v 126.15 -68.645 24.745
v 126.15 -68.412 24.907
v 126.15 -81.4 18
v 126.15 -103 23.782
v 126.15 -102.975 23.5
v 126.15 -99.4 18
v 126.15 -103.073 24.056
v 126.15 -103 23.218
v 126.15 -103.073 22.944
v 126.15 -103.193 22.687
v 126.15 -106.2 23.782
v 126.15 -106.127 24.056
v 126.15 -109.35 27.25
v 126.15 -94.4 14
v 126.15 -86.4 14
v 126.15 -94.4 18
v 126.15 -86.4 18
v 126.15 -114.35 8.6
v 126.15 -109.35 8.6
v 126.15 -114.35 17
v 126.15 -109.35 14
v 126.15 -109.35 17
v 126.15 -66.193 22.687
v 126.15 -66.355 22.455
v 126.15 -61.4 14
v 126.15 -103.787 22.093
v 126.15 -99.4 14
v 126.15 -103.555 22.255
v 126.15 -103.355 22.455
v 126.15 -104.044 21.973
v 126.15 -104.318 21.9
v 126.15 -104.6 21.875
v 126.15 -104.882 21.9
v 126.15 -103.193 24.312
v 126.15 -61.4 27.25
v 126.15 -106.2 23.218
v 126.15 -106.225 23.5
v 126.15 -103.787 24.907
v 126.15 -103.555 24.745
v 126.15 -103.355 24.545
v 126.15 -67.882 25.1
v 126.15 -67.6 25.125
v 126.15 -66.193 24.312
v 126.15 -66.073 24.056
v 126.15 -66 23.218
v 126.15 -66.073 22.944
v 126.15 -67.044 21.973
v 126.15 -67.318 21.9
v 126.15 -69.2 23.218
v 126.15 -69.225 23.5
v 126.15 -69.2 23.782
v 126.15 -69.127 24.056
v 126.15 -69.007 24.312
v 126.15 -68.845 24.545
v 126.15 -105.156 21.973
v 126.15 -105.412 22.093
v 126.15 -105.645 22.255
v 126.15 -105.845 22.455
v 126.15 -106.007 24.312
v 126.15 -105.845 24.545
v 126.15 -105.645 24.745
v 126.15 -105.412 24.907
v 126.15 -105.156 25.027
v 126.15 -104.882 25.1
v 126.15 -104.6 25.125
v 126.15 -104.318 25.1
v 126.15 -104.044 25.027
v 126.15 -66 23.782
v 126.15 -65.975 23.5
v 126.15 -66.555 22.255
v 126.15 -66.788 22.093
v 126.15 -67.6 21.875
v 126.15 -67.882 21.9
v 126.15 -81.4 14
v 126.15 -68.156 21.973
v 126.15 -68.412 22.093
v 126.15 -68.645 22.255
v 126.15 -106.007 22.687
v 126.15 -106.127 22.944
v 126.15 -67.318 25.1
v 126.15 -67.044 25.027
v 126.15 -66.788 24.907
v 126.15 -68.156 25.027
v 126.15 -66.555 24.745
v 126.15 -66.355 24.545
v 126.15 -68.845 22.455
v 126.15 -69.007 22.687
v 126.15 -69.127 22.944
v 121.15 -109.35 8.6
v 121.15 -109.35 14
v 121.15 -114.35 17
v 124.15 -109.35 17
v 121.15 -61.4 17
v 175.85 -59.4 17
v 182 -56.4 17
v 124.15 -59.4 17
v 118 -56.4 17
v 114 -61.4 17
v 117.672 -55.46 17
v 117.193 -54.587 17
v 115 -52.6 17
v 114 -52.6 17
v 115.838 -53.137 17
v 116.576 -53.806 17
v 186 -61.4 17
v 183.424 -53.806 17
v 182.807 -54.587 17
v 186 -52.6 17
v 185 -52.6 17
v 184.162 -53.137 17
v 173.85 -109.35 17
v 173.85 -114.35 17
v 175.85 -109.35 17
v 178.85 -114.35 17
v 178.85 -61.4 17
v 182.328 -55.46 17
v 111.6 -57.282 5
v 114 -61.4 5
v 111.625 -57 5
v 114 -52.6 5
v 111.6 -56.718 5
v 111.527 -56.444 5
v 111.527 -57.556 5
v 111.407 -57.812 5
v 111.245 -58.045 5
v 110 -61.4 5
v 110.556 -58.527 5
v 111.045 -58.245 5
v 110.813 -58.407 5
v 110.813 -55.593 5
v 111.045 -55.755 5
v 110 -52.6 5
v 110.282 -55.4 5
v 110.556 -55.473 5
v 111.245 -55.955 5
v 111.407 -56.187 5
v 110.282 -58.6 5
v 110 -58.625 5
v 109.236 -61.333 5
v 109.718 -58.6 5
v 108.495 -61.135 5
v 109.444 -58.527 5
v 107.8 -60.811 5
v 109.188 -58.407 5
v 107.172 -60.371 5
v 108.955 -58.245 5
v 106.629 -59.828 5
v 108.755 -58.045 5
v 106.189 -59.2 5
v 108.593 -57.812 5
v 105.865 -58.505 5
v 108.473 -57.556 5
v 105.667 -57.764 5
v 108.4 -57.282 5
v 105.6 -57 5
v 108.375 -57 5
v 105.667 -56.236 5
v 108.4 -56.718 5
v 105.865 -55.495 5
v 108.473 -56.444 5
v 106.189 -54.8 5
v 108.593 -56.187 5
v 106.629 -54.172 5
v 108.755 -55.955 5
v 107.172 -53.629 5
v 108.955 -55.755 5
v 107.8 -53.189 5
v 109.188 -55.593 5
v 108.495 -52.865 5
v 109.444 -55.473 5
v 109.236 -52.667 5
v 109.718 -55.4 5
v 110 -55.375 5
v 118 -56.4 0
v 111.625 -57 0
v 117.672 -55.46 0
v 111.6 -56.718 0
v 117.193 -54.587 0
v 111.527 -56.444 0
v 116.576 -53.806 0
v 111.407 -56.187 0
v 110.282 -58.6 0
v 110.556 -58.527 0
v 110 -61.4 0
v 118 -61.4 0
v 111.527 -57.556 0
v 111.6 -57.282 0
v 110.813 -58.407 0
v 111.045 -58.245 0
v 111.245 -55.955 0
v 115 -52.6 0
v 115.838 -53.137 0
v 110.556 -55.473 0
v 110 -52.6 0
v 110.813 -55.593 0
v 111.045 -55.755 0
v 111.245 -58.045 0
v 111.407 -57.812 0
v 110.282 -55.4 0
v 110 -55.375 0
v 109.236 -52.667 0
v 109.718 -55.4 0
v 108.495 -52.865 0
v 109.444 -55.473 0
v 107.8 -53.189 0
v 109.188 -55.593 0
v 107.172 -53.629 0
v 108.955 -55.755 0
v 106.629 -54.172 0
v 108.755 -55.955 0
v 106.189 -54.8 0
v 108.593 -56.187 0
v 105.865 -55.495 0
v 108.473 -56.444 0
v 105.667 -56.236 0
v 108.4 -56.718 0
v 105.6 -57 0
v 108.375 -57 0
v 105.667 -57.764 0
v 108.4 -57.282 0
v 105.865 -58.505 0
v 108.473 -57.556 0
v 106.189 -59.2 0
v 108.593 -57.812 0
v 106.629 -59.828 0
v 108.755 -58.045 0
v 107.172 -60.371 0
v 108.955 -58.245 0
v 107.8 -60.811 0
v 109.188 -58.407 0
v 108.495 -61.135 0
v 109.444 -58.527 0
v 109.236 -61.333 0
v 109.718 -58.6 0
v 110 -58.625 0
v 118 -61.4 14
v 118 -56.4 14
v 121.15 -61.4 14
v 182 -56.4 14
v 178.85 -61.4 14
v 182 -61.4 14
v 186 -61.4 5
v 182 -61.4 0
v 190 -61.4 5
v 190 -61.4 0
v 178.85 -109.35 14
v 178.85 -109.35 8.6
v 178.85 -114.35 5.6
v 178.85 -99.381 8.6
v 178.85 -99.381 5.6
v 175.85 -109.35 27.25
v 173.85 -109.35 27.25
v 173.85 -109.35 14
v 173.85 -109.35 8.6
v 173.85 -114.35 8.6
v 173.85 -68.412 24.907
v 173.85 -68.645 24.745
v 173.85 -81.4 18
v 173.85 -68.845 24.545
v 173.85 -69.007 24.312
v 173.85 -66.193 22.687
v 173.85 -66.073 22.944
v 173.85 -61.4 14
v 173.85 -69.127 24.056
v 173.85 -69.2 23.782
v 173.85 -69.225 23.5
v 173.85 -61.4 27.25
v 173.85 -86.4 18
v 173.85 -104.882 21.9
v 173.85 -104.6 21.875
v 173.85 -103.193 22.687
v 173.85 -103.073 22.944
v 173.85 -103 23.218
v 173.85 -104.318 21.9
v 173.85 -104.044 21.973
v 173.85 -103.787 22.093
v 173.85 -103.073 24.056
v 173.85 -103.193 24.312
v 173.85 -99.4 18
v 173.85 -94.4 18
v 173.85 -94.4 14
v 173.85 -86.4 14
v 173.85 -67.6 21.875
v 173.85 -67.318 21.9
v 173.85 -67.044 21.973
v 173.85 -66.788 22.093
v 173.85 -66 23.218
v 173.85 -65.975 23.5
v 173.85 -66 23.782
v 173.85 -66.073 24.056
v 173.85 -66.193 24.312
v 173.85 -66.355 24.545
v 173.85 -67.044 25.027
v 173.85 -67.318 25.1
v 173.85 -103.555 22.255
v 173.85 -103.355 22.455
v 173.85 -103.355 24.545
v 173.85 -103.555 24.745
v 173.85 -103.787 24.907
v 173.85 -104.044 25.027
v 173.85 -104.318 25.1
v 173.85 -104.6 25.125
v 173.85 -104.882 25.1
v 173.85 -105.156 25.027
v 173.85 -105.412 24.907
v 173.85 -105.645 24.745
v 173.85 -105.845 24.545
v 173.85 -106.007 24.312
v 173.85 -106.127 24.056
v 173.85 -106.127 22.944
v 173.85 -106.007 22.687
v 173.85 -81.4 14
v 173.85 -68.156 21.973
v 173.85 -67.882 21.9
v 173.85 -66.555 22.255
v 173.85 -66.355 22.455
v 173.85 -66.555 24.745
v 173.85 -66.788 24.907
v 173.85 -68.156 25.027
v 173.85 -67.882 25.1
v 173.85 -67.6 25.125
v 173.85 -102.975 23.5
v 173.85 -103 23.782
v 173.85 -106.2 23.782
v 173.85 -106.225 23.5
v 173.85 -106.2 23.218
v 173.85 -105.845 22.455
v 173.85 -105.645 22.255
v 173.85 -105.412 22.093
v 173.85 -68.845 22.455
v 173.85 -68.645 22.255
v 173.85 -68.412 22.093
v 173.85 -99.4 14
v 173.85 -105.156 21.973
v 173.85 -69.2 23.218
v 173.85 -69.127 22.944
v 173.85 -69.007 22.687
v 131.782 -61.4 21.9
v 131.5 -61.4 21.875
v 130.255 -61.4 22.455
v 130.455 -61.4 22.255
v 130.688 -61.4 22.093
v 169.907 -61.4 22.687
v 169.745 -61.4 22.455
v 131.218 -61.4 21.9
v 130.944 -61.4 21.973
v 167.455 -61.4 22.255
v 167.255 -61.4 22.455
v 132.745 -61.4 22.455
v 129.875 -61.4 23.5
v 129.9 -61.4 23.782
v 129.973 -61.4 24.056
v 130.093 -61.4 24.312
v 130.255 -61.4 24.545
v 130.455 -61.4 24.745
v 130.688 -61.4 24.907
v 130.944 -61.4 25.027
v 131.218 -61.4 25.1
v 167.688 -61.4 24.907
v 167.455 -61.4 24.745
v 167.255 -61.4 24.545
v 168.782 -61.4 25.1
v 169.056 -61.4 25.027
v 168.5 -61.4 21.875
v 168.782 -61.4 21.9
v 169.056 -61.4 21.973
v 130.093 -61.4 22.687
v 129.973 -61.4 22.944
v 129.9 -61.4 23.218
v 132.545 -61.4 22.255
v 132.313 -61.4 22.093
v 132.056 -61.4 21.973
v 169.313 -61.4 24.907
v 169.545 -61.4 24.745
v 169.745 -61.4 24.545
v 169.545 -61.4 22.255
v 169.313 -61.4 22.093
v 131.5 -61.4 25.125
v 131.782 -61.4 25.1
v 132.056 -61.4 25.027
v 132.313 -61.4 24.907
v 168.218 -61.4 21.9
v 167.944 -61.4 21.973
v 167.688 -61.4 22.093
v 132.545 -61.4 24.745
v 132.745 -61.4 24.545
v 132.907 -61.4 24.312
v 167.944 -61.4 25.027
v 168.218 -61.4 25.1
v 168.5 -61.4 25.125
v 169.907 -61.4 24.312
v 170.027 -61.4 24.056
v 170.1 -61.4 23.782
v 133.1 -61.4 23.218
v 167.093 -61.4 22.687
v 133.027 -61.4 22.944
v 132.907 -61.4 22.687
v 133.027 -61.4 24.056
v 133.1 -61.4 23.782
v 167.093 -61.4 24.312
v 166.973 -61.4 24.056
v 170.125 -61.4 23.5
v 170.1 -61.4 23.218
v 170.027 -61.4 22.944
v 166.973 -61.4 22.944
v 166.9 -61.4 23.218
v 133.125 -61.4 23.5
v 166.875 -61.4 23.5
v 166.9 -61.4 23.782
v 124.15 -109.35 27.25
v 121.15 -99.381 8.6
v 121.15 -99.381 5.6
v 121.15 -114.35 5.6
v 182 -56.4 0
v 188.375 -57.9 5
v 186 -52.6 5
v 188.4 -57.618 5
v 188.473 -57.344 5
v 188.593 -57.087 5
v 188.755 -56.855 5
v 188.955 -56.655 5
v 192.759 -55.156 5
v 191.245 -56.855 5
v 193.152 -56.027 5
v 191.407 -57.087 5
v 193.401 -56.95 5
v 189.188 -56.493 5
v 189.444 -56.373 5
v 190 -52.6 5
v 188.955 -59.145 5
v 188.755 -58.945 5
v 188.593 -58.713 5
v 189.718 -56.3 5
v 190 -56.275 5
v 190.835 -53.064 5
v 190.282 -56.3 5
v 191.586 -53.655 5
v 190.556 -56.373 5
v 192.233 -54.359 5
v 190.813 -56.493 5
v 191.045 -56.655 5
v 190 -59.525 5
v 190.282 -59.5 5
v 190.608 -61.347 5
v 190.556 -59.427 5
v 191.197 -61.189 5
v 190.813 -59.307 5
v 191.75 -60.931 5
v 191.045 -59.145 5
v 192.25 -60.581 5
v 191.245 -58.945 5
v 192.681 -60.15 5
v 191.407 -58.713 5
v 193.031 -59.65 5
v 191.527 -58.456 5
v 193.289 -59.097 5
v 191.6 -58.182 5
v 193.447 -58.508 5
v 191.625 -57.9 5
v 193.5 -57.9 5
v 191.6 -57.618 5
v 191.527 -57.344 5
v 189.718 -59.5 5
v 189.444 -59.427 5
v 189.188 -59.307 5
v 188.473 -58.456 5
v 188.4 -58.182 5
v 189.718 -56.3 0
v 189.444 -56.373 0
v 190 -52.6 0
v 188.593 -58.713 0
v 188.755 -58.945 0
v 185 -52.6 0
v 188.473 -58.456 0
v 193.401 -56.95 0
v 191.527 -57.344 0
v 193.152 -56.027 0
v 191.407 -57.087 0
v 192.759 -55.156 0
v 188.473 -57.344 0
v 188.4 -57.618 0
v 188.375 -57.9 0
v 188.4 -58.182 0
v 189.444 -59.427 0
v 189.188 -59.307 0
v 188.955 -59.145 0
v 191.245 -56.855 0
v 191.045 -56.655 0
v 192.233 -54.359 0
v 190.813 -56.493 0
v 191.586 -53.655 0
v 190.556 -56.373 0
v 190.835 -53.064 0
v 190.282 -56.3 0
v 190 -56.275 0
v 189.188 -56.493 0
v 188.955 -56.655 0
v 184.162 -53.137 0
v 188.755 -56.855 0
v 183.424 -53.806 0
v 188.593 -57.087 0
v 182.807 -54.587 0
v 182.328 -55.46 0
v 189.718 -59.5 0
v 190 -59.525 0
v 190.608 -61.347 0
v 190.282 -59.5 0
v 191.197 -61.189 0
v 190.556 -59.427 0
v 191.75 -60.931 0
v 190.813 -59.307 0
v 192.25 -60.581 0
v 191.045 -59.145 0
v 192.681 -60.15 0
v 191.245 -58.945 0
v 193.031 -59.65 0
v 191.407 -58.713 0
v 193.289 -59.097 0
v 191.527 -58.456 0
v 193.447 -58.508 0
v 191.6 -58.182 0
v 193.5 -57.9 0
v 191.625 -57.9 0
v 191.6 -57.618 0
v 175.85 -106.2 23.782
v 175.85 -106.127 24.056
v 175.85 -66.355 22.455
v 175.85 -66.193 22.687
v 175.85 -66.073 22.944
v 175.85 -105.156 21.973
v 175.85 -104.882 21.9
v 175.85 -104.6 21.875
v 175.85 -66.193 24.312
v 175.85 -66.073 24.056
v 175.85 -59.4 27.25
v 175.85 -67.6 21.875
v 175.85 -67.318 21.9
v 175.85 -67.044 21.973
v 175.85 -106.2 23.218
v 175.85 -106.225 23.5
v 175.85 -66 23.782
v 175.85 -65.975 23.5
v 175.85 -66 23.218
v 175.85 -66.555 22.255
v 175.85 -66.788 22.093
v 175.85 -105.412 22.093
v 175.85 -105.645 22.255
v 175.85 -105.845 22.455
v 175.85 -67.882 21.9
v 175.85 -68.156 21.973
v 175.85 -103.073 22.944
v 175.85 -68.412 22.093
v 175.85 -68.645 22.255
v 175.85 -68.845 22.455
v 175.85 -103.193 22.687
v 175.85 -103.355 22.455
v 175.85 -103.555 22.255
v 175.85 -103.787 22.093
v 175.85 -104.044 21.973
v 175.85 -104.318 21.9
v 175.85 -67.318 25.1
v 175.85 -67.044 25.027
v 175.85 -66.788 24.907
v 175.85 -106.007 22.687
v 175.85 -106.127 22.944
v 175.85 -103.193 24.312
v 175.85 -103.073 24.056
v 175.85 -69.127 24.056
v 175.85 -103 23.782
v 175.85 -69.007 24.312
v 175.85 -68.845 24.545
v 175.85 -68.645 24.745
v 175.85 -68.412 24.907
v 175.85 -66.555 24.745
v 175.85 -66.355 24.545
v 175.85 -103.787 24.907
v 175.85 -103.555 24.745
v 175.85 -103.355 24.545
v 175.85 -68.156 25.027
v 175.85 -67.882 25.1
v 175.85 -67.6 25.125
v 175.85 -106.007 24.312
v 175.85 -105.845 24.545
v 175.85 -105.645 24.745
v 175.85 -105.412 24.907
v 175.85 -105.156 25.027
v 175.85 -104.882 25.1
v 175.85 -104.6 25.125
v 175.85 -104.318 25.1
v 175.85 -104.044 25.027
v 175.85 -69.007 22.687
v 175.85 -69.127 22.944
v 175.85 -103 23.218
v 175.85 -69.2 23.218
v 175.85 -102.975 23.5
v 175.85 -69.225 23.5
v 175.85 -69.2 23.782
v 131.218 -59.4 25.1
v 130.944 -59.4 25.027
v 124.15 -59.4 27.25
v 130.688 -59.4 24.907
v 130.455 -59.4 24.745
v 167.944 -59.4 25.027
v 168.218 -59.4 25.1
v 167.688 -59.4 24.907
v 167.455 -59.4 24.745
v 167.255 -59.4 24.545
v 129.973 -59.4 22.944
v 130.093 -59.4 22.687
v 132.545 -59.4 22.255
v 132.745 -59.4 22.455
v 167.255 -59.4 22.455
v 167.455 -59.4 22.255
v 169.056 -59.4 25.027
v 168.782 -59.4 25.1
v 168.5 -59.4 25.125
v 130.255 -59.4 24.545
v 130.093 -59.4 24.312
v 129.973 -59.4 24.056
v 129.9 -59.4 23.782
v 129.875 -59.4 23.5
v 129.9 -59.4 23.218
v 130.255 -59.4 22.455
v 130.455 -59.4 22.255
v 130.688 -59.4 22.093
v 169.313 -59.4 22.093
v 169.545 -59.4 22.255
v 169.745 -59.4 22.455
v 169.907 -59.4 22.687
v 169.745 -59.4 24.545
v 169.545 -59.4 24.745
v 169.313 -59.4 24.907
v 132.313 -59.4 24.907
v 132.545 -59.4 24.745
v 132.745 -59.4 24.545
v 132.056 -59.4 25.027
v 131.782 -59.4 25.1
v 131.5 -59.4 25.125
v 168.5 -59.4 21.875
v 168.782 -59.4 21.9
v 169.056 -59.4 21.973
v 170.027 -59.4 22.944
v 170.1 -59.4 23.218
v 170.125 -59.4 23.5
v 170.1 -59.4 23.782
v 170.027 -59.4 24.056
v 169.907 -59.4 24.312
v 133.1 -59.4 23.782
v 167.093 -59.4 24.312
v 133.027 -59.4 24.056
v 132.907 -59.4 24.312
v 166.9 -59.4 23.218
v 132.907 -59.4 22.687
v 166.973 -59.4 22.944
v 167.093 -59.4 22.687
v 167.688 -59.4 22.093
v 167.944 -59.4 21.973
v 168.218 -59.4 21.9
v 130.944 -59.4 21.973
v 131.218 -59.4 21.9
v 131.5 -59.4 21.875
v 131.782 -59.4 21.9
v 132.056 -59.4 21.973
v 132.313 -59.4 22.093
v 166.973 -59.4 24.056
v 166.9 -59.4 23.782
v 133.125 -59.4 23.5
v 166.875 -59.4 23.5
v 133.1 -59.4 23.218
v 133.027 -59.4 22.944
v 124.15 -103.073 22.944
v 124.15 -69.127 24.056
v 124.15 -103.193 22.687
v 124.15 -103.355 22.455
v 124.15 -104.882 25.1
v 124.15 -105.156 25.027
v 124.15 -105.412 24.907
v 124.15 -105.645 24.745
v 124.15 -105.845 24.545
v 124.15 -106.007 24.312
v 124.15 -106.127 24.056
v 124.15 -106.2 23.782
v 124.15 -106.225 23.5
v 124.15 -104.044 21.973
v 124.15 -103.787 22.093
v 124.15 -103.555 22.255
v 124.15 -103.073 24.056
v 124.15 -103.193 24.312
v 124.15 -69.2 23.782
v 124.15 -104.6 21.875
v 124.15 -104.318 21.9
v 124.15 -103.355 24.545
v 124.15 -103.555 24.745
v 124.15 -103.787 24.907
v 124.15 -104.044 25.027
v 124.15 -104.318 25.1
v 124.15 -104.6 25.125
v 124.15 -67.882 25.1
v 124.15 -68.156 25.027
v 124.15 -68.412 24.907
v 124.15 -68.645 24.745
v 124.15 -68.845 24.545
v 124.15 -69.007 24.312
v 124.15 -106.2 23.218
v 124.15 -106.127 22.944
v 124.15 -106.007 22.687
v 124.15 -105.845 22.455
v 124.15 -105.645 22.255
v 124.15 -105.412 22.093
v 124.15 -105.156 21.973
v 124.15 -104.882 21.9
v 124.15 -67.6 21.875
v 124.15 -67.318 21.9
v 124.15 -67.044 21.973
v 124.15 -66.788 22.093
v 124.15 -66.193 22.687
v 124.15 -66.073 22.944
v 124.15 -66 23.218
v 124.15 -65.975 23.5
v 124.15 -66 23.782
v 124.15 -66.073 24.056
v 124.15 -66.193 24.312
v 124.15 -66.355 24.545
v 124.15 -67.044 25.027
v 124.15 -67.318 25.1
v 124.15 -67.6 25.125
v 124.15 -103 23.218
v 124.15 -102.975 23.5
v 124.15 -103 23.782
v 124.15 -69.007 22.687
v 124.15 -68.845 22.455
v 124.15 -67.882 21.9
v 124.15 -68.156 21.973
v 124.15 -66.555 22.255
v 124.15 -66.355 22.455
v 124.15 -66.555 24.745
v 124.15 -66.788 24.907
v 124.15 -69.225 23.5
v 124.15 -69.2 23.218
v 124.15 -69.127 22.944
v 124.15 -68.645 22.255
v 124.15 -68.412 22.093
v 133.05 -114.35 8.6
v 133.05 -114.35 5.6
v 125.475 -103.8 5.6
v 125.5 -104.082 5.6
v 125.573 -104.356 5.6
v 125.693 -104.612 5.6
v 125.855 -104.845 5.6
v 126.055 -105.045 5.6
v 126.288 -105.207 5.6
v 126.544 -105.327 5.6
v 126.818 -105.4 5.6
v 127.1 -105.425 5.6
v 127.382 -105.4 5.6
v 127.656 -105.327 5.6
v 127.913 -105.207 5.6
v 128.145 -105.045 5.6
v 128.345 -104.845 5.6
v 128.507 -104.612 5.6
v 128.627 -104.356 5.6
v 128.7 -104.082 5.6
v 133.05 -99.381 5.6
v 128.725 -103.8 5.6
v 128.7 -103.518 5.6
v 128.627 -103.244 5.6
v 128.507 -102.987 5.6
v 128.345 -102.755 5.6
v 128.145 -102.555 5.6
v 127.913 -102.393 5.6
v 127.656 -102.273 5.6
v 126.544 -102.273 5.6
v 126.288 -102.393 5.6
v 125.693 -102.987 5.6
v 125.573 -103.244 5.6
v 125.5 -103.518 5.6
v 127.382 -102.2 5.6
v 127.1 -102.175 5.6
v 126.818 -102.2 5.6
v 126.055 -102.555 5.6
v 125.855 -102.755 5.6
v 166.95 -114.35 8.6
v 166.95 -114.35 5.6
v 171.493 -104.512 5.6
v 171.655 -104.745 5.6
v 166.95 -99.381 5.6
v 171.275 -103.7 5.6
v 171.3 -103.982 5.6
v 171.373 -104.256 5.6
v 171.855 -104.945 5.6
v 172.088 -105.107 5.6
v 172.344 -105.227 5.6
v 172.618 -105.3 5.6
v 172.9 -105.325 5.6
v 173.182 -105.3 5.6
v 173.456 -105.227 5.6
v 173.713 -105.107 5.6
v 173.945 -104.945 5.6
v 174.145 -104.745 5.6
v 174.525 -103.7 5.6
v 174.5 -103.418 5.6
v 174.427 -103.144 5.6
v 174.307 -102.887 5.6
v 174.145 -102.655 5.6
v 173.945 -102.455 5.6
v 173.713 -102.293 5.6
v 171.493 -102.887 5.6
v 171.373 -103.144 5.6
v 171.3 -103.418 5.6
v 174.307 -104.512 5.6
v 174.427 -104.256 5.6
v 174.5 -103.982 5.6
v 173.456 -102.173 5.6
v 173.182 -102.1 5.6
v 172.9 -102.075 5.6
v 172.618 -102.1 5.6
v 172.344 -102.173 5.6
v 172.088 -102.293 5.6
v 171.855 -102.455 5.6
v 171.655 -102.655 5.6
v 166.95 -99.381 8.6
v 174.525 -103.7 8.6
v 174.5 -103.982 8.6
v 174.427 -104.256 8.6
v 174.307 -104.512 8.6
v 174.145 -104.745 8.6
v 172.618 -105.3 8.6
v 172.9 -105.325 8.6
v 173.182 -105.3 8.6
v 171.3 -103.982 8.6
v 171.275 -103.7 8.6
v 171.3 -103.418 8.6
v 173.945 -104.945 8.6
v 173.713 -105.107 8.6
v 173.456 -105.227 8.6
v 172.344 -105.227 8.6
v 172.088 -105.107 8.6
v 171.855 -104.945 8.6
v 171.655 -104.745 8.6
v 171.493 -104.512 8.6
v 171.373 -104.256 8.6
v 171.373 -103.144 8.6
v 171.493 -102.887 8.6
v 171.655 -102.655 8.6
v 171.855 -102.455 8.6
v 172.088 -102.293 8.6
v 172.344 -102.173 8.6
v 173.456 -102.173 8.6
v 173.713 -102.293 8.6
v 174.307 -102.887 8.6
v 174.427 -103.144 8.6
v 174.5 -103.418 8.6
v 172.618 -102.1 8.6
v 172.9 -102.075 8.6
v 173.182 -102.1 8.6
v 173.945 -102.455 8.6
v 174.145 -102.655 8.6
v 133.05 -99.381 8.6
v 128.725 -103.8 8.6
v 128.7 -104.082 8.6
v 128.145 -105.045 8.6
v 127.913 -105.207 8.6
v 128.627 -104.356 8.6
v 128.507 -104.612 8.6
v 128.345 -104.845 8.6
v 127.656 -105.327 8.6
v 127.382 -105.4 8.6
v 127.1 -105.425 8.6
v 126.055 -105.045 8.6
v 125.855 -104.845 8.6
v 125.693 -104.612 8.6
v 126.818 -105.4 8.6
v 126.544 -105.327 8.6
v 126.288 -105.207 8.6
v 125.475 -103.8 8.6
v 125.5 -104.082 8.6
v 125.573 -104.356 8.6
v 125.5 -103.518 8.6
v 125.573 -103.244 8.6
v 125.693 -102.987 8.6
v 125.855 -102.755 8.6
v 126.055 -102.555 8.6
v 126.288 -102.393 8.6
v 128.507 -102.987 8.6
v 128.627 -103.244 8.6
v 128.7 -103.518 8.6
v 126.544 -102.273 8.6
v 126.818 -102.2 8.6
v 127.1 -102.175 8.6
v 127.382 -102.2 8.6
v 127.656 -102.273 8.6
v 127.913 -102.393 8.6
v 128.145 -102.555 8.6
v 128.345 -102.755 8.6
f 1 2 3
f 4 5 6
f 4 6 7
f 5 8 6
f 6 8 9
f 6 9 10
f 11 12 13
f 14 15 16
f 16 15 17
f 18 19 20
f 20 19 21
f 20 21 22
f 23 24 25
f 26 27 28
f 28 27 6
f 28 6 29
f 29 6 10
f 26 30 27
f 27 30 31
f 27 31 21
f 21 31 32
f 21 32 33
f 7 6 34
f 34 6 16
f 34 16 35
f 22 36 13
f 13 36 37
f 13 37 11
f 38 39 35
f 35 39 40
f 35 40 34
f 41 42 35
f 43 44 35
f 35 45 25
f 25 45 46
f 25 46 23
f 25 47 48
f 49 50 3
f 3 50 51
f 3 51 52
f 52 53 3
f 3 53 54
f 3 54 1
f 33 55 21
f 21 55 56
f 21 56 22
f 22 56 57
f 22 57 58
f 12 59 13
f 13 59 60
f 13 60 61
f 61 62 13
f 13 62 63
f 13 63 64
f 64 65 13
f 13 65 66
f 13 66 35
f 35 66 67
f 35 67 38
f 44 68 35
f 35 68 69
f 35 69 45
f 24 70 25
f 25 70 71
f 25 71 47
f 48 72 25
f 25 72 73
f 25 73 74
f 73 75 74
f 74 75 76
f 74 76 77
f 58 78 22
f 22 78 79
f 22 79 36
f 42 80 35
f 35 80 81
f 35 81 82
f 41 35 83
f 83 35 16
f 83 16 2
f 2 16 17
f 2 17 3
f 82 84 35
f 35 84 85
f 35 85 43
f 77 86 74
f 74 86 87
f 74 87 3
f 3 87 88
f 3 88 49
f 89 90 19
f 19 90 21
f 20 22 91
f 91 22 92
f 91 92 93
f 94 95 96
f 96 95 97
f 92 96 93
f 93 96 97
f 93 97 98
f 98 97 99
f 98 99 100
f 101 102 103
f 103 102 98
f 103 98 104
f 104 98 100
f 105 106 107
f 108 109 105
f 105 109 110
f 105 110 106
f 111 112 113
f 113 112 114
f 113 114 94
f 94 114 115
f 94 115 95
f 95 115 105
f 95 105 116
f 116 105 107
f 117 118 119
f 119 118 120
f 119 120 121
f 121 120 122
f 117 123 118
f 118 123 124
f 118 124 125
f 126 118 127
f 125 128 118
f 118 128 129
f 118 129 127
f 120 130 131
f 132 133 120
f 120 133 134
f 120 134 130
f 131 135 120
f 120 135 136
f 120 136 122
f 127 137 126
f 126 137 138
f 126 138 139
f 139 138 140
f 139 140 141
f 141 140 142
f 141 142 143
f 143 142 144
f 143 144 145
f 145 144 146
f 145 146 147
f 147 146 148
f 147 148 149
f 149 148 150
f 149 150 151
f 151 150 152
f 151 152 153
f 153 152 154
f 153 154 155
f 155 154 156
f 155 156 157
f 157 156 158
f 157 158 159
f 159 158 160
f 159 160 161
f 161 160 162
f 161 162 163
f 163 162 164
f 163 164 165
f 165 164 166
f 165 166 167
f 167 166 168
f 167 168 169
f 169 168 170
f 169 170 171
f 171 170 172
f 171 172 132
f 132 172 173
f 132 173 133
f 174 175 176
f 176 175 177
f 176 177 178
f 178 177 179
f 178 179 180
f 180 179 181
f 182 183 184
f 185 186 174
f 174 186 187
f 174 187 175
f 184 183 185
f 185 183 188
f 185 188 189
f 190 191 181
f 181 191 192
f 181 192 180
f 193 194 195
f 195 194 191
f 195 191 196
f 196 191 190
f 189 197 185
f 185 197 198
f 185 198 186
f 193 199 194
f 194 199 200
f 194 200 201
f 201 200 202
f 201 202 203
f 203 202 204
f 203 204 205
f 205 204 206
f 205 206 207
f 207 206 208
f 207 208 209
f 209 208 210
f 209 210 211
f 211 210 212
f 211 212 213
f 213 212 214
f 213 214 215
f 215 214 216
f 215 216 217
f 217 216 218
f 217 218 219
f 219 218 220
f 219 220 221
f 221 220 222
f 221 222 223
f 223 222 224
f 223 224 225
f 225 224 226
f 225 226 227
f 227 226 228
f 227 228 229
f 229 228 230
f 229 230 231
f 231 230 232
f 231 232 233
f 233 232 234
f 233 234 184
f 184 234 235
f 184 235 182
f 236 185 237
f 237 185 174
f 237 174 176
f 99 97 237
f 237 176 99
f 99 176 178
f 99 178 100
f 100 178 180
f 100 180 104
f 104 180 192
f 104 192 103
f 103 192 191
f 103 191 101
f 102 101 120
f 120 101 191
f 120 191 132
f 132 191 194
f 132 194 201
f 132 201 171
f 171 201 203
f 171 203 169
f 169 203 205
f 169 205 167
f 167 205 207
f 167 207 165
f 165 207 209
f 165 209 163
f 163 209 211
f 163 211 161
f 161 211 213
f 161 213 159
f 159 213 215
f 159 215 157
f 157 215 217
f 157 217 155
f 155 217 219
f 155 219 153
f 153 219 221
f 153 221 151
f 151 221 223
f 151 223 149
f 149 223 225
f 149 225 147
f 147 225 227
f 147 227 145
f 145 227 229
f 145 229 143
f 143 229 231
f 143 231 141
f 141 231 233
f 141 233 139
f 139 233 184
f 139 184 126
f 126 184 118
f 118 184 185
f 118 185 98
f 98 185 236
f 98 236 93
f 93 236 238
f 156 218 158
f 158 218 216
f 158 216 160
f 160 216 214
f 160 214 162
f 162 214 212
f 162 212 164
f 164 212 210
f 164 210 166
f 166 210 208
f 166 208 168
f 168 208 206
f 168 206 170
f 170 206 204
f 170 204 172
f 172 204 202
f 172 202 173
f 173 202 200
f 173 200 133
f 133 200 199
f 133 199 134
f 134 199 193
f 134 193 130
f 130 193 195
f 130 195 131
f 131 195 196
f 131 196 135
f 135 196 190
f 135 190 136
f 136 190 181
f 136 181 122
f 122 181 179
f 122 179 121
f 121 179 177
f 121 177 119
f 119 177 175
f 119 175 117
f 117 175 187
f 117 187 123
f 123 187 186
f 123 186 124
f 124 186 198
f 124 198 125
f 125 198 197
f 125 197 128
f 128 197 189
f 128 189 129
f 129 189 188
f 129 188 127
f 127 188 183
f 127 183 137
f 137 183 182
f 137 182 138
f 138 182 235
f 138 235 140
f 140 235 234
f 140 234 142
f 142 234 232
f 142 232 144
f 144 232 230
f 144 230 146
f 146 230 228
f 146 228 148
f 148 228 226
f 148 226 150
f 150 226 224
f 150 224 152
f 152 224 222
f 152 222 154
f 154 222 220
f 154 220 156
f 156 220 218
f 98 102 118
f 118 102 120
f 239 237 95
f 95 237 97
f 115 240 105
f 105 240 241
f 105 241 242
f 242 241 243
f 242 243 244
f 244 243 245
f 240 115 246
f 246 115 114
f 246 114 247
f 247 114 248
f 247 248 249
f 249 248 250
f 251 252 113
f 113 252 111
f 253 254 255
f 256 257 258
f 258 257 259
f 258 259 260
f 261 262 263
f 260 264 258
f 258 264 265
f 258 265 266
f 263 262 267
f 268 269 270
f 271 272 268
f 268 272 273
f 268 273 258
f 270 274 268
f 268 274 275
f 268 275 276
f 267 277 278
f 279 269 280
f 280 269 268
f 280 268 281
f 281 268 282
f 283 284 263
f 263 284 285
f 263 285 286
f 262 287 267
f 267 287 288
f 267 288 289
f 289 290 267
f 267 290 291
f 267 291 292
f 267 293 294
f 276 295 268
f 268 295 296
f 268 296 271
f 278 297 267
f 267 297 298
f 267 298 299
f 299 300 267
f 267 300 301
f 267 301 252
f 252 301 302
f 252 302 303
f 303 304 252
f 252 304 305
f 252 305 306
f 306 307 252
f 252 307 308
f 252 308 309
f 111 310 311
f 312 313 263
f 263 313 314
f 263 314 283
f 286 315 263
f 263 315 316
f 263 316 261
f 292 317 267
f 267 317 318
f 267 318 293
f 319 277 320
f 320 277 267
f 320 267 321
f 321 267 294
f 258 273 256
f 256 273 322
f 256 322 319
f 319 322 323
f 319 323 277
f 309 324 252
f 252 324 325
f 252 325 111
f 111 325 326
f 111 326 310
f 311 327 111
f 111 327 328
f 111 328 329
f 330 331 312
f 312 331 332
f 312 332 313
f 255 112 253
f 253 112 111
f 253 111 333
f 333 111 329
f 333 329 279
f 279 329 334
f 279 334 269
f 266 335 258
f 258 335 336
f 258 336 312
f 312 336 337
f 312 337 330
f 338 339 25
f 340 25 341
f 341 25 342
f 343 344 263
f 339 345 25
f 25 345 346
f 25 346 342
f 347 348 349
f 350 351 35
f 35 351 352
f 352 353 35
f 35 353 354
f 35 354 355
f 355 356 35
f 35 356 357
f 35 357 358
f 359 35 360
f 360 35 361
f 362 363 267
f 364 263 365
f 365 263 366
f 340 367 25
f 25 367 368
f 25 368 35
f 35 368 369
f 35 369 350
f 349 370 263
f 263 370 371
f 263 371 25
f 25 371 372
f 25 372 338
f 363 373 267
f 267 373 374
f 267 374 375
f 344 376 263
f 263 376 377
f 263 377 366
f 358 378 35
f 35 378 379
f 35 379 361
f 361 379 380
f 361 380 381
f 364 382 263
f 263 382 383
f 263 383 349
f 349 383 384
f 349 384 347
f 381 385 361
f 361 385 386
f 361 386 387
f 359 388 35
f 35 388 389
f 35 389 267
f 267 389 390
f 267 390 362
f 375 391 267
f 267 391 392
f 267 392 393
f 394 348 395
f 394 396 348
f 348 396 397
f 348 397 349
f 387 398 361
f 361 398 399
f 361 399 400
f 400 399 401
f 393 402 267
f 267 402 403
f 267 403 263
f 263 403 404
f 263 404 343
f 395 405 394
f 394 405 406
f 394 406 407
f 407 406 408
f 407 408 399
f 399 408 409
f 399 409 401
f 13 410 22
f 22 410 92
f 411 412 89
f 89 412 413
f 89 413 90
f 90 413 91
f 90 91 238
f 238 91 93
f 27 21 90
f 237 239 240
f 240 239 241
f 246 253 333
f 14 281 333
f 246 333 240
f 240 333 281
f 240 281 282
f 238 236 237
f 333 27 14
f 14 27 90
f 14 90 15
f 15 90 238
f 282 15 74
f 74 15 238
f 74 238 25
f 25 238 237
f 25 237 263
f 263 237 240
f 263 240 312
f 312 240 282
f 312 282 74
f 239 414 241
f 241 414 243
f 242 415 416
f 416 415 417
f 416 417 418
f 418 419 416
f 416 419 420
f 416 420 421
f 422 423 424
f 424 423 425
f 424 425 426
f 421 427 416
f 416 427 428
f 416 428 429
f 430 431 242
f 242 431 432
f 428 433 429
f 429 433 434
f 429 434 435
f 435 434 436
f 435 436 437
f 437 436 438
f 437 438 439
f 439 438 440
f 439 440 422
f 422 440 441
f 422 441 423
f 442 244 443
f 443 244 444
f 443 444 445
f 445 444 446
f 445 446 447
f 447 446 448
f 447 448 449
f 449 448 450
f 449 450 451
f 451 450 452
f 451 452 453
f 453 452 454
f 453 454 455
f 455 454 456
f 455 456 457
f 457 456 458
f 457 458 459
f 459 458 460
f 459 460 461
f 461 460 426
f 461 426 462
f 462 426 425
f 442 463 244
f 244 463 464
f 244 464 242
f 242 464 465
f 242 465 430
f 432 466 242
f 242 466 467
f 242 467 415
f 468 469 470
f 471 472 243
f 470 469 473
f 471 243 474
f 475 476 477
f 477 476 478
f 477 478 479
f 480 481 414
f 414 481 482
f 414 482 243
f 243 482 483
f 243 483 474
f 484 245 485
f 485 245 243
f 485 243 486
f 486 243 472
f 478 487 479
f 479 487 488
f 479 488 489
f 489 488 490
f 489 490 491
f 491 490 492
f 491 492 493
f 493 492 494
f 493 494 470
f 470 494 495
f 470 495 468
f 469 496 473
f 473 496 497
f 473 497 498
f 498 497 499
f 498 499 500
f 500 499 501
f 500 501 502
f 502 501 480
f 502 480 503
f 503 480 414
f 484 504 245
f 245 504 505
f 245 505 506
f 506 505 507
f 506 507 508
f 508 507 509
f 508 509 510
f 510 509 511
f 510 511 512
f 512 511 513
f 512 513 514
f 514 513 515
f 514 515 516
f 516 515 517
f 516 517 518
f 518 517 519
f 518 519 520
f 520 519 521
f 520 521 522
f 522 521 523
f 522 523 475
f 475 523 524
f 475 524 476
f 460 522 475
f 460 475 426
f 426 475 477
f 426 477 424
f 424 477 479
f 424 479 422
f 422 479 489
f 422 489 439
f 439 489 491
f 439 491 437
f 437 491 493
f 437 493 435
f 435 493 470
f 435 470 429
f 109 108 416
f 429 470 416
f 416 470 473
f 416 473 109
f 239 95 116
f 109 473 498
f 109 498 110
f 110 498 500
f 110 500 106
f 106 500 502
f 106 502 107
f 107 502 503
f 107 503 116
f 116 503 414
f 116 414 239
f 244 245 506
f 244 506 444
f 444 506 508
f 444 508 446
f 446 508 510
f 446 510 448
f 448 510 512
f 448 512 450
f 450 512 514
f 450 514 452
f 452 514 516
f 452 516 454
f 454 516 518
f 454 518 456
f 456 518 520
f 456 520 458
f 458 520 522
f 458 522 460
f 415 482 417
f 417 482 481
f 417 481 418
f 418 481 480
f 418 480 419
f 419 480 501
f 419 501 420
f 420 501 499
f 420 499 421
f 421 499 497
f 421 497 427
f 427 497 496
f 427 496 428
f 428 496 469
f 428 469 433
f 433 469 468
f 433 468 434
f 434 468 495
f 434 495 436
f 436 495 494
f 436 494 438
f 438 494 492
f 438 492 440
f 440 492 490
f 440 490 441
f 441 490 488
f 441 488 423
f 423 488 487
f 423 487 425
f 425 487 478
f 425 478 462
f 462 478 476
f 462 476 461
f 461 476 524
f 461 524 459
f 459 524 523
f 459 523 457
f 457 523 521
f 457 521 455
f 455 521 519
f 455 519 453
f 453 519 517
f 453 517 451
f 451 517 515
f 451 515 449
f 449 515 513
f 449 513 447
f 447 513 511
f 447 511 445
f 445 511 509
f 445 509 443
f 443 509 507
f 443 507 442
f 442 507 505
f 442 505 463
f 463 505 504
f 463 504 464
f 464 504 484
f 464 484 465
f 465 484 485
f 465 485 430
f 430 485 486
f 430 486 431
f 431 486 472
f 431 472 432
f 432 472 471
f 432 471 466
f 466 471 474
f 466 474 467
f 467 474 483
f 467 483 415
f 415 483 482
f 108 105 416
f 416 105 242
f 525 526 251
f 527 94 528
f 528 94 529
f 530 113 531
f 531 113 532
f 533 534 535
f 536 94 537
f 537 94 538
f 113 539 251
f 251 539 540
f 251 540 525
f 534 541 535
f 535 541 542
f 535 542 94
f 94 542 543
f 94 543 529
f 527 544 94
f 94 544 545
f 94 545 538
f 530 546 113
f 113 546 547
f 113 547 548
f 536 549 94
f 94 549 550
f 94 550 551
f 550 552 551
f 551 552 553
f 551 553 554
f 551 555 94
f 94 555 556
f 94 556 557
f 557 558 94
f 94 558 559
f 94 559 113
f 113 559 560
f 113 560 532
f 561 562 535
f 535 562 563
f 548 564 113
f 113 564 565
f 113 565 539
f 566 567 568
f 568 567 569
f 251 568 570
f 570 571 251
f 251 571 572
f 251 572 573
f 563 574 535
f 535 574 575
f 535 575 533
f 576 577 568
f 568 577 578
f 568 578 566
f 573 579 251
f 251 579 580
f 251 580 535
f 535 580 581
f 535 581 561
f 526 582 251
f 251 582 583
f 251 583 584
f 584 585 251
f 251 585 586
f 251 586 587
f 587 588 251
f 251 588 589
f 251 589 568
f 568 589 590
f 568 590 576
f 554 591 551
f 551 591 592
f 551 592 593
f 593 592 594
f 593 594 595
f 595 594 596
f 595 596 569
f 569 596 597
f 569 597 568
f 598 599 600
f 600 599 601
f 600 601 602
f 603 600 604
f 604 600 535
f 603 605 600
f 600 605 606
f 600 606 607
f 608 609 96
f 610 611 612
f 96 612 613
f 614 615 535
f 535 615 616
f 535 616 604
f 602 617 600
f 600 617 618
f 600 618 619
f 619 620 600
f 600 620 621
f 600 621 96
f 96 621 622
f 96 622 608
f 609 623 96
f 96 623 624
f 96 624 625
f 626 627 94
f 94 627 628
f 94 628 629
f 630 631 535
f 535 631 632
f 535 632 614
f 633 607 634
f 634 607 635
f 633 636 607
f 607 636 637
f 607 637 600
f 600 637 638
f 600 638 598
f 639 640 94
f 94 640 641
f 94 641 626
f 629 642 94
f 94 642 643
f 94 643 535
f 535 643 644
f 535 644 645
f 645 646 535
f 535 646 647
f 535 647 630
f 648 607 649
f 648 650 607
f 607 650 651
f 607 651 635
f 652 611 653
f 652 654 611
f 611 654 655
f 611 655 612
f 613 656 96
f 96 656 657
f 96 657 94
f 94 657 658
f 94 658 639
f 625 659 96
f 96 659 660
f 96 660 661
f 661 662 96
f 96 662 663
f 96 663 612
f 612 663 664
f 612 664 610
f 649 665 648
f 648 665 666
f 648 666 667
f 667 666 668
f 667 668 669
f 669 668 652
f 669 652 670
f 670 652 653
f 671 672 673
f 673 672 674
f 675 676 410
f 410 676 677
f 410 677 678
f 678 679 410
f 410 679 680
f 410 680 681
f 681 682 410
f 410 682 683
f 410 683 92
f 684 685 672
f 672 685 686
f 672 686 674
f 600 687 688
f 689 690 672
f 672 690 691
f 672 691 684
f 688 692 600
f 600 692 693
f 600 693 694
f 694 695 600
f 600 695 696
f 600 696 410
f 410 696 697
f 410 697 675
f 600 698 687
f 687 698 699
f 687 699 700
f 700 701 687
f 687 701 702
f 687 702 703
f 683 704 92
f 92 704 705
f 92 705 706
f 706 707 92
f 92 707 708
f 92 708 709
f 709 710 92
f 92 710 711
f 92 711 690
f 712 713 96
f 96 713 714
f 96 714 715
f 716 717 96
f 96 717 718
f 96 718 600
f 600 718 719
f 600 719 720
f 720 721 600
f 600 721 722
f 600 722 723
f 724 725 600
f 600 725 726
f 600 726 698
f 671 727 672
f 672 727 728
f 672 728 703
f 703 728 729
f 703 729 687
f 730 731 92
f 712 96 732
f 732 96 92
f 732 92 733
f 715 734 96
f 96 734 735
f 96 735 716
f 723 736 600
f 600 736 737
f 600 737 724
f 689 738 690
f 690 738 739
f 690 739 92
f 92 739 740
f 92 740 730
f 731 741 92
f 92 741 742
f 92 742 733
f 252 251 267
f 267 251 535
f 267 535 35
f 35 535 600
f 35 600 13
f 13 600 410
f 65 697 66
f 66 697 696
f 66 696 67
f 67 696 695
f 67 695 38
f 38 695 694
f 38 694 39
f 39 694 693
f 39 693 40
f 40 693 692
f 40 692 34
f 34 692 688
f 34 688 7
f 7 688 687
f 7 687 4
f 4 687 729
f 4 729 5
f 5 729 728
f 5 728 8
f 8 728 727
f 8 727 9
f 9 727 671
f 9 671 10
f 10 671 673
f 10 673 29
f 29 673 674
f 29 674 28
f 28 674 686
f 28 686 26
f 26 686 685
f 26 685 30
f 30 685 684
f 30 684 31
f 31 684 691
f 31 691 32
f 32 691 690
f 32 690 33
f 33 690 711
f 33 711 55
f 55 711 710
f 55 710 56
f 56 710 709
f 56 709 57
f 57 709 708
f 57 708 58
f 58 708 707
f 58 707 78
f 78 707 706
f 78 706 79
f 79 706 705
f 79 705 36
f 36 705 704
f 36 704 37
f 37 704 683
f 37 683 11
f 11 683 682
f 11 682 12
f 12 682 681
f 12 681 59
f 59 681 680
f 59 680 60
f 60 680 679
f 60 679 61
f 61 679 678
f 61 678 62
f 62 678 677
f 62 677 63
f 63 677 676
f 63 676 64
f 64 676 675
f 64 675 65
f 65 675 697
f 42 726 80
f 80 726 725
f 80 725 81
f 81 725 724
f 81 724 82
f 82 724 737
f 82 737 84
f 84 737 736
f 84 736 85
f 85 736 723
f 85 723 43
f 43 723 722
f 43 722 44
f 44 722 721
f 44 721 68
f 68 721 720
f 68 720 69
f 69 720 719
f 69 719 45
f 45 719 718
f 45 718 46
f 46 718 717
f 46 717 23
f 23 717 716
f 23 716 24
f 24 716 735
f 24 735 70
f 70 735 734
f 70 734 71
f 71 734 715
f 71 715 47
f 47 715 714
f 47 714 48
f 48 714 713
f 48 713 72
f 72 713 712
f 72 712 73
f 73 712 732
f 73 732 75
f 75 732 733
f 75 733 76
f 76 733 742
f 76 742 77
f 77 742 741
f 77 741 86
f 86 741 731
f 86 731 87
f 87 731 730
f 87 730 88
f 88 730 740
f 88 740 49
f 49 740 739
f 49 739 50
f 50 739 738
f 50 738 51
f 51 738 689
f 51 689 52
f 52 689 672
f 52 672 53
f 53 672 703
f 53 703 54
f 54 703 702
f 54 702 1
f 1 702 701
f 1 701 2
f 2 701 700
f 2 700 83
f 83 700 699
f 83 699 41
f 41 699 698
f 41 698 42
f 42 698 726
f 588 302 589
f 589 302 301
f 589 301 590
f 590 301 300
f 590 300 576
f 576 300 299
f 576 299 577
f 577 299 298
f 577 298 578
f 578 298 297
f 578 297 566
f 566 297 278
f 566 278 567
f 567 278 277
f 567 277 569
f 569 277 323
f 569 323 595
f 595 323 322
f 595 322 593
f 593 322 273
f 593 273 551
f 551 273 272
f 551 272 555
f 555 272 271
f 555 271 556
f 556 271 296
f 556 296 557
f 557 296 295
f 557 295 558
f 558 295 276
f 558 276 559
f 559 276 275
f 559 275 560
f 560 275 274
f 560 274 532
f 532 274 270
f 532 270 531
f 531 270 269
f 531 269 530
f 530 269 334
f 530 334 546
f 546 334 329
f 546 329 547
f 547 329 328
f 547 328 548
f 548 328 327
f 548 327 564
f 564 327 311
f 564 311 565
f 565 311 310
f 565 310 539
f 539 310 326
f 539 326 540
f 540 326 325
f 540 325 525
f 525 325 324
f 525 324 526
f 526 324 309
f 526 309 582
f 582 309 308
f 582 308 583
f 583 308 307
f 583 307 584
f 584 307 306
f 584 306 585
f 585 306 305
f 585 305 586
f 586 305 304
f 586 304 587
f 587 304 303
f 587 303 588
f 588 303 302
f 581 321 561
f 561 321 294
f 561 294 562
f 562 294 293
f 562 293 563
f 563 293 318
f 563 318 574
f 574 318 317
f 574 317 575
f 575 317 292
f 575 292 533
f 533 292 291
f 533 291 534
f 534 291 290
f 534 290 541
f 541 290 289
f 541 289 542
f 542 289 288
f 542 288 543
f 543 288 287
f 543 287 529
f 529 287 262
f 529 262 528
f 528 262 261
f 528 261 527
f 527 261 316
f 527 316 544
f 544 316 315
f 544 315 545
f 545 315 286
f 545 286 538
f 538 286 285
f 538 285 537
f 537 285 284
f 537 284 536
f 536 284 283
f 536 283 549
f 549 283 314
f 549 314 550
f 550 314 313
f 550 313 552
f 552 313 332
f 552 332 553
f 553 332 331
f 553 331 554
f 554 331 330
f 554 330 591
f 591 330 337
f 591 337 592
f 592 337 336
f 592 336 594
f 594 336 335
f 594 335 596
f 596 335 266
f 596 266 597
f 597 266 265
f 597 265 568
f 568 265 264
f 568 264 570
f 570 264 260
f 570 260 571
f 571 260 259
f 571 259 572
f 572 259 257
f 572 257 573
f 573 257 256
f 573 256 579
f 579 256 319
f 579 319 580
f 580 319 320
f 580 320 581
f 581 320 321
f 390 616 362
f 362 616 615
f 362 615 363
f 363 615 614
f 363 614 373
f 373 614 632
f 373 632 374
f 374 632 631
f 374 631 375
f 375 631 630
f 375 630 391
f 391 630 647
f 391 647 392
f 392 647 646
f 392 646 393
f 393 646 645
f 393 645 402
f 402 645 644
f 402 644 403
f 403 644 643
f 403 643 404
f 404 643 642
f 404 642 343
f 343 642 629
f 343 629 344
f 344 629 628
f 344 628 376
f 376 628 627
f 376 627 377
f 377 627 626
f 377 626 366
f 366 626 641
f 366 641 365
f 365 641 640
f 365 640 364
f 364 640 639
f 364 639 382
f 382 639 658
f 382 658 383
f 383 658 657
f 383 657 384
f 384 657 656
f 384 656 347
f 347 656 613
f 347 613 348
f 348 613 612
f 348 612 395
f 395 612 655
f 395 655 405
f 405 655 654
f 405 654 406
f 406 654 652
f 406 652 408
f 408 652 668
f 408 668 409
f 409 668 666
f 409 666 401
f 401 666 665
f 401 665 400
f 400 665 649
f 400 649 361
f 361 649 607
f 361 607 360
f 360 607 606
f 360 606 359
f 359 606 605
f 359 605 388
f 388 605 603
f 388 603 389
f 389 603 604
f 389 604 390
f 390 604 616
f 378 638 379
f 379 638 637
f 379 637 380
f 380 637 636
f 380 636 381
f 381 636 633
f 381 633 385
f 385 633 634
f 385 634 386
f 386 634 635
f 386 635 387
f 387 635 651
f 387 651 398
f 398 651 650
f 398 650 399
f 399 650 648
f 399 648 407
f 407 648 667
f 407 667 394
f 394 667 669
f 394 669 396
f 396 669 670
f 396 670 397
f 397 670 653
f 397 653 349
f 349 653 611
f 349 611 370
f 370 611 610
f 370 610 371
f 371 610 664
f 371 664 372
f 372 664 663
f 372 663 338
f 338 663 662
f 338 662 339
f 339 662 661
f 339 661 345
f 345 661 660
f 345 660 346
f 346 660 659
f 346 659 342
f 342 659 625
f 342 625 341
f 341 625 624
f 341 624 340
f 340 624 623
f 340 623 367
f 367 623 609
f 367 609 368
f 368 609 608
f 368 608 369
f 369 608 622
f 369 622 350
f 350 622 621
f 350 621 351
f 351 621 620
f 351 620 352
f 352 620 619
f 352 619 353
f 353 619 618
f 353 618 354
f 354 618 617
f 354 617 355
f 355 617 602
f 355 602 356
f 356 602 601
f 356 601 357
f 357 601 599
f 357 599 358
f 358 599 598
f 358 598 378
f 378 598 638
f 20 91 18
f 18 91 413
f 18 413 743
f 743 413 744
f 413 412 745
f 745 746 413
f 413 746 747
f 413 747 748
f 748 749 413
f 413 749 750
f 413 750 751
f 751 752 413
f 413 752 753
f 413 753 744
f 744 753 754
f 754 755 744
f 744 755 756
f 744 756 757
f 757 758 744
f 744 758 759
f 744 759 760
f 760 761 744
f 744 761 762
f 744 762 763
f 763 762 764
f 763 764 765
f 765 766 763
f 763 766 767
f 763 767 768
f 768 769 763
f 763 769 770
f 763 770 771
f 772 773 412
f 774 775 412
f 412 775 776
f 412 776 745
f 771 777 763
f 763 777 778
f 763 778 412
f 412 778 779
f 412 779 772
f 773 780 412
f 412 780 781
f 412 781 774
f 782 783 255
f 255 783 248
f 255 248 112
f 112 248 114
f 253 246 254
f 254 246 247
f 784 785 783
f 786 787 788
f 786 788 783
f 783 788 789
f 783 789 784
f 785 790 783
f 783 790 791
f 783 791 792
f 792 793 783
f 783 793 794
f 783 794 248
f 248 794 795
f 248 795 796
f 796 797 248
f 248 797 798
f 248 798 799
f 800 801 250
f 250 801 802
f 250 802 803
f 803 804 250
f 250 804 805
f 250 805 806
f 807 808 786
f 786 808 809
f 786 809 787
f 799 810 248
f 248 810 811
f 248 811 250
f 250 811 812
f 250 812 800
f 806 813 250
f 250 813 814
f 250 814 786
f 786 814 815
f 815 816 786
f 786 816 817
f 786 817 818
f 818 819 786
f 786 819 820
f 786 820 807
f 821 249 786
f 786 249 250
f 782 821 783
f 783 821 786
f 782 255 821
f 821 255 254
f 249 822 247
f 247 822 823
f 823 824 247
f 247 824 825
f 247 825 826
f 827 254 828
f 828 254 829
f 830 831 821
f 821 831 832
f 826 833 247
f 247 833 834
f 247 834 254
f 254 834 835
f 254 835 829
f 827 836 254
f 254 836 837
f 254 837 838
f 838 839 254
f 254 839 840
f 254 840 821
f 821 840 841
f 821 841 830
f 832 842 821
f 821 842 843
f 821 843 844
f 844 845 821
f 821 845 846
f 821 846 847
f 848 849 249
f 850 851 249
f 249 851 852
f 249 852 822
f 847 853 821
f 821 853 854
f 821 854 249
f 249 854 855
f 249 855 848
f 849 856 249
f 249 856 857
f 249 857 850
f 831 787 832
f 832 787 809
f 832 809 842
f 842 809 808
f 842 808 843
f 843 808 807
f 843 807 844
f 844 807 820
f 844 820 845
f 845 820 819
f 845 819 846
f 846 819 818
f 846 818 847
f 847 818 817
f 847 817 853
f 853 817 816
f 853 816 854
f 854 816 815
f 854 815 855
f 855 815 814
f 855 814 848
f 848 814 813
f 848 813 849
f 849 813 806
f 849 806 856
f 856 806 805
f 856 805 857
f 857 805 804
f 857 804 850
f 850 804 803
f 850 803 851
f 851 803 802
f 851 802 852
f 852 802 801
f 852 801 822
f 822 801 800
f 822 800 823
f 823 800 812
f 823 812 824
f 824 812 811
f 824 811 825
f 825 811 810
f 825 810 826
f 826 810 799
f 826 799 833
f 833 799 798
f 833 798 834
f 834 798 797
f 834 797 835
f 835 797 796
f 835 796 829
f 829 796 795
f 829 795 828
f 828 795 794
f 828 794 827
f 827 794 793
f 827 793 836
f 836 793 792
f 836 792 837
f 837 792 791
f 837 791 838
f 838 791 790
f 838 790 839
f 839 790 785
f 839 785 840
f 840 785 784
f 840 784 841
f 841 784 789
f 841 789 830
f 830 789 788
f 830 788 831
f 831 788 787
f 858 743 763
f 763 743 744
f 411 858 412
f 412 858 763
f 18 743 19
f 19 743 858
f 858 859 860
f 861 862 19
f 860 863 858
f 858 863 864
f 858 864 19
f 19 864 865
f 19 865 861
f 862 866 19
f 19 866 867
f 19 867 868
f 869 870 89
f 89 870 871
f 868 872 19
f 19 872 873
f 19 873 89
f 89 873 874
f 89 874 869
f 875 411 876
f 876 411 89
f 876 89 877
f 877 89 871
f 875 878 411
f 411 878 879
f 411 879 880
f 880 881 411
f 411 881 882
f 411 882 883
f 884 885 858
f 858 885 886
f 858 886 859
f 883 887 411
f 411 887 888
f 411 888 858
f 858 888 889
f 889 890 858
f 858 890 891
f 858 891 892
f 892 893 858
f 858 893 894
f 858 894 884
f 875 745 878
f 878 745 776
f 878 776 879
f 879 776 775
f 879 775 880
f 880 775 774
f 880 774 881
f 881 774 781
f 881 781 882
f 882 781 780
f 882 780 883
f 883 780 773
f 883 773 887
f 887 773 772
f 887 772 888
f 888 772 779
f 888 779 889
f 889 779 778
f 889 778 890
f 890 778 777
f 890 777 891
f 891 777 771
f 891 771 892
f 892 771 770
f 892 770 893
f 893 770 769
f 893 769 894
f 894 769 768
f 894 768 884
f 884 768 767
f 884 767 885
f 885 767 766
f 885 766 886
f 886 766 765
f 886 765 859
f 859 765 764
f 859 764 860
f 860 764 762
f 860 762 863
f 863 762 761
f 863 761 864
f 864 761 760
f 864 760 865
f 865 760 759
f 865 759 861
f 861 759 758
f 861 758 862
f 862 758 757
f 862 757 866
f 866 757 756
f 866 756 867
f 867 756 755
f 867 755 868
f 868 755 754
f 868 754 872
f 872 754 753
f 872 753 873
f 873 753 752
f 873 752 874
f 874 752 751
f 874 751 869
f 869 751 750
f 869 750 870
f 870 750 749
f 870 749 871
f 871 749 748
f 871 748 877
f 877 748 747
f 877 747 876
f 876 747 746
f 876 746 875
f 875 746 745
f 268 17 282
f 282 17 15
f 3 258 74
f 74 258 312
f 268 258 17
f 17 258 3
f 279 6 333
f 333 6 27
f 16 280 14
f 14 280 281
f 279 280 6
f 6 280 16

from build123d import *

# Parameters (mm, degrees)
CROQUIS1_R                = 1.625
SALIENTE_EXTRUIR1_DEPTH   = 5
SALIENTE_EXTRUIR1_2_DEPTH = 5
SALIENTE_EXTRUIR2_DEPTH   = 12
SALIENTE_EXTRUIR4_DEPTH   = 3
SALIENTE_EXTRUIR6_DEPTH   = 10.25
CROQUIS12_R               = 1.625
CORTAR_EXTRUIR1_DEPTH     = 51.7
CROQUIS13_R               = 1.625
CORTAR_EXTRUIR2_DEPTH     = 2
CROQUIS14_W               = 5
CROQUIS14_H               = 5
SALIENTE_EXTRUIR7_DEPTH   = 11.4
CROQUIS15_W               = 11.9
CROQUIS15_H               = 14.969217292
CROQUIS15_R               = 1.625
SALIENTE_EXTRUIR8_DEPTH   = 3
CROQUIS16_W               = 47.7
CROQUIS16_H               = 5
SALIENTE_EXTRUIR9_DEPTH   = 4


with BuildPart() as part:
    # Croquis1 → Saliente-Extruir1 (new body)
    with BuildSketch(Plane.XY):
        with BuildLine():
            Line((190, -61.4), (182, -61.4))
            Line((182, -61.4), (182, -56.4))
            ThreePointArc((182, -56.4), (183.099702641, -54.183975769), (185, -52.6))
            Line((185, -52.6), (190, -52.6))
            ThreePointArc((190, -52.6), (192.511852896, -54.746889597), (193.5, -57.9))
            ThreePointArc((193.5, -57.9), (192.474873734, -60.374873734), (190, -61.4))
        make_face()
        with Locations((190, -57.9)):
            Circle(CROQUIS1_R, mode=Mode.SUBTRACT)
    extrude(amount=SALIENTE_EXTRUIR1_DEPTH)



with BuildPart() as body_2:
    # Croquis1 → Saliente-Extruir1 2 (new body)
    with BuildSketch(Plane.XY):
        with BuildLine():
            Line((115, -52.6), (110, -52.6))
            ThreePointArc((110, -52.6), (105.6, -57), (110, -61.4))
            Line((110, -61.4), (118, -61.4))
            Line((118, -61.4), (118, -56.4))
            ThreePointArc((118, -56.4), (116.900297359, -54.183975769), (115, -52.6))
        make_face()
        with Locations((110, -57)):
            Circle(CROQUIS1_R, mode=Mode.SUBTRACT)
    extrude(amount=SALIENTE_EXTRUIR1_2_DEPTH)


with BuildPart() as part_1:
    add(part.part)

    add(body_2.part)  # Saliente-Extruir2 merges body 2
    # Croquis4 → Saliente-Extruir2 (add)
    with BuildSketch(Plane.XY.offset(5)):
        with BuildLine():
            Line((115, -52.6), (114, -52.6))
            Line((114, -52.6), (114, -61.4))
            Line((114, -61.4), (118, -61.4))
            Line((118, -61.4), (118, -56.4))
            ThreePointArc((118, -56.4), (116.900297359, -54.183975769), (115, -52.6))
        make_face()
        with BuildLine():
            Line((185, -52.6), (186, -52.6))
            Line((186, -52.6), (186, -61.4))
            Line((186, -61.4), (182, -61.4))
            Line((182, -61.4), (182, -56.4))
            ThreePointArc((182, -56.4), (183.099702641, -54.183975769), (185, -52.6))
        make_face()
    extrude(amount=SALIENTE_EXTRUIR2_DEPTH)

    # Croquis7 → Saliente-Extruir4 (add)
    with BuildSketch(Plane.XY.offset(17)):
        Polygon((118, -56.4), (182, -56.4), (182, -61.4), (178.85, -61.4), (178.85, -109.35), (173.85, -109.35), (173.85, -61.4), (170.85, -61.4), (129.15, -61.4), (126.15, -61.4), (126.15, -109.35), (121.15, -109.35), (121.15, -61.4), (118, -61.4), align=None)
    extrude(amount=-SALIENTE_EXTRUIR4_DEPTH)

    # Croquis10 → Saliente-Extruir6 (add)
    with BuildSketch(Plane.XY.offset(17)):
        Polygon((124.15, -59.4), (126.15, -59.4), (173.85, -59.4), (175.85, -59.4), (175.85, -109.35), (173.85, -109.35), (173.85, -61.4), (126.15, -61.4), (126.15, -109.35), (124.15, -109.35), align=None)
    extrude(amount=SALIENTE_EXTRUIR6_DEPTH)

    # Croquis12 → Cortar-Extruir1 (cut)
    with BuildSketch(Plane.ZY.offset(-124.15)):
        with Locations((23.5, -67.6)):
            Circle(CROQUIS12_R)
        with Locations((23.5, -104.6)):
            Circle(CROQUIS12_R)
    extrude(amount=-CORTAR_EXTRUIR1_DEPTH, mode=Mode.SUBTRACT)

    # Croquis13 → Cortar-Extruir2 (cut)
    with BuildSketch(Plane(origin=(0, -59.4, 0), x_dir=(1, 0, 0), z_dir=(0, 1, 0))):
        with Locations(Location((131.5, -23.5, 0), (0, 0, 270))):
            Circle(CROQUIS13_R)
        with Locations(Location((168.5, -23.5, 0), (0, 0, 270))):
            Circle(CROQUIS13_R)
    extrude(amount=-CORTAR_EXTRUIR2_DEPTH, mode=Mode.SUBTRACT)

    # Croquis14 → Saliente-Extruir7 (add)
    with BuildSketch(Plane.XY.offset(17)):
        with Locations((123.65, -111.85)):
            Rectangle(CROQUIS14_W, CROQUIS14_H)
        with Locations((176.35, -111.85)):
            Rectangle(CROQUIS14_W, CROQUIS14_H)
    extrude(amount=-SALIENTE_EXTRUIR7_DEPTH)

    # Croquis15 → Saliente-Extruir8 (add)
    # profile 1 of 2: a face of its own
    with BuildSketch(Plane(origin=(0, 0, 5.6), x_dir=(-1, 0, 0), z_dir=(0, 0, -1))):
        with Locations((-172.9, -106.865391354)):
            Rectangle(CROQUIS15_W, CROQUIS15_H)
        with Locations((-172.9, -103.7)):
            Circle(CROQUIS15_R, mode=Mode.SUBTRACT)
    # profile 2 of 2: a face of its own
    with BuildSketch(Plane(origin=(0, 0, 5.6), x_dir=(-1, 0, 0), z_dir=(0, 0, -1))):
        with Locations((-127.1, -106.865391354)):
            Rectangle(CROQUIS15_W, CROQUIS15_H)
        with Locations((-127.1, -103.8)):
            Circle(CROQUIS15_R, mode=Mode.SUBTRACT)
    extrude(amount=-SALIENTE_EXTRUIR8_DEPTH)

    # Croquis16 → Saliente-Extruir9 (add)
    with BuildSketch(Plane(origin=(0, 0, 14), x_dir=(-1, 0, 0), z_dir=(0, 0, -1))):
        with Locations((-150, -83.9)):
            Rectangle(CROQUIS16_W, CROQUIS16_H)
        with Locations((-150, -96.9)):
            Rectangle(CROQUIS16_W, CROQUIS16_H)
    extrude(amount=-SALIENTE_EXTRUIR9_DEPTH)


solid = part_1.part
